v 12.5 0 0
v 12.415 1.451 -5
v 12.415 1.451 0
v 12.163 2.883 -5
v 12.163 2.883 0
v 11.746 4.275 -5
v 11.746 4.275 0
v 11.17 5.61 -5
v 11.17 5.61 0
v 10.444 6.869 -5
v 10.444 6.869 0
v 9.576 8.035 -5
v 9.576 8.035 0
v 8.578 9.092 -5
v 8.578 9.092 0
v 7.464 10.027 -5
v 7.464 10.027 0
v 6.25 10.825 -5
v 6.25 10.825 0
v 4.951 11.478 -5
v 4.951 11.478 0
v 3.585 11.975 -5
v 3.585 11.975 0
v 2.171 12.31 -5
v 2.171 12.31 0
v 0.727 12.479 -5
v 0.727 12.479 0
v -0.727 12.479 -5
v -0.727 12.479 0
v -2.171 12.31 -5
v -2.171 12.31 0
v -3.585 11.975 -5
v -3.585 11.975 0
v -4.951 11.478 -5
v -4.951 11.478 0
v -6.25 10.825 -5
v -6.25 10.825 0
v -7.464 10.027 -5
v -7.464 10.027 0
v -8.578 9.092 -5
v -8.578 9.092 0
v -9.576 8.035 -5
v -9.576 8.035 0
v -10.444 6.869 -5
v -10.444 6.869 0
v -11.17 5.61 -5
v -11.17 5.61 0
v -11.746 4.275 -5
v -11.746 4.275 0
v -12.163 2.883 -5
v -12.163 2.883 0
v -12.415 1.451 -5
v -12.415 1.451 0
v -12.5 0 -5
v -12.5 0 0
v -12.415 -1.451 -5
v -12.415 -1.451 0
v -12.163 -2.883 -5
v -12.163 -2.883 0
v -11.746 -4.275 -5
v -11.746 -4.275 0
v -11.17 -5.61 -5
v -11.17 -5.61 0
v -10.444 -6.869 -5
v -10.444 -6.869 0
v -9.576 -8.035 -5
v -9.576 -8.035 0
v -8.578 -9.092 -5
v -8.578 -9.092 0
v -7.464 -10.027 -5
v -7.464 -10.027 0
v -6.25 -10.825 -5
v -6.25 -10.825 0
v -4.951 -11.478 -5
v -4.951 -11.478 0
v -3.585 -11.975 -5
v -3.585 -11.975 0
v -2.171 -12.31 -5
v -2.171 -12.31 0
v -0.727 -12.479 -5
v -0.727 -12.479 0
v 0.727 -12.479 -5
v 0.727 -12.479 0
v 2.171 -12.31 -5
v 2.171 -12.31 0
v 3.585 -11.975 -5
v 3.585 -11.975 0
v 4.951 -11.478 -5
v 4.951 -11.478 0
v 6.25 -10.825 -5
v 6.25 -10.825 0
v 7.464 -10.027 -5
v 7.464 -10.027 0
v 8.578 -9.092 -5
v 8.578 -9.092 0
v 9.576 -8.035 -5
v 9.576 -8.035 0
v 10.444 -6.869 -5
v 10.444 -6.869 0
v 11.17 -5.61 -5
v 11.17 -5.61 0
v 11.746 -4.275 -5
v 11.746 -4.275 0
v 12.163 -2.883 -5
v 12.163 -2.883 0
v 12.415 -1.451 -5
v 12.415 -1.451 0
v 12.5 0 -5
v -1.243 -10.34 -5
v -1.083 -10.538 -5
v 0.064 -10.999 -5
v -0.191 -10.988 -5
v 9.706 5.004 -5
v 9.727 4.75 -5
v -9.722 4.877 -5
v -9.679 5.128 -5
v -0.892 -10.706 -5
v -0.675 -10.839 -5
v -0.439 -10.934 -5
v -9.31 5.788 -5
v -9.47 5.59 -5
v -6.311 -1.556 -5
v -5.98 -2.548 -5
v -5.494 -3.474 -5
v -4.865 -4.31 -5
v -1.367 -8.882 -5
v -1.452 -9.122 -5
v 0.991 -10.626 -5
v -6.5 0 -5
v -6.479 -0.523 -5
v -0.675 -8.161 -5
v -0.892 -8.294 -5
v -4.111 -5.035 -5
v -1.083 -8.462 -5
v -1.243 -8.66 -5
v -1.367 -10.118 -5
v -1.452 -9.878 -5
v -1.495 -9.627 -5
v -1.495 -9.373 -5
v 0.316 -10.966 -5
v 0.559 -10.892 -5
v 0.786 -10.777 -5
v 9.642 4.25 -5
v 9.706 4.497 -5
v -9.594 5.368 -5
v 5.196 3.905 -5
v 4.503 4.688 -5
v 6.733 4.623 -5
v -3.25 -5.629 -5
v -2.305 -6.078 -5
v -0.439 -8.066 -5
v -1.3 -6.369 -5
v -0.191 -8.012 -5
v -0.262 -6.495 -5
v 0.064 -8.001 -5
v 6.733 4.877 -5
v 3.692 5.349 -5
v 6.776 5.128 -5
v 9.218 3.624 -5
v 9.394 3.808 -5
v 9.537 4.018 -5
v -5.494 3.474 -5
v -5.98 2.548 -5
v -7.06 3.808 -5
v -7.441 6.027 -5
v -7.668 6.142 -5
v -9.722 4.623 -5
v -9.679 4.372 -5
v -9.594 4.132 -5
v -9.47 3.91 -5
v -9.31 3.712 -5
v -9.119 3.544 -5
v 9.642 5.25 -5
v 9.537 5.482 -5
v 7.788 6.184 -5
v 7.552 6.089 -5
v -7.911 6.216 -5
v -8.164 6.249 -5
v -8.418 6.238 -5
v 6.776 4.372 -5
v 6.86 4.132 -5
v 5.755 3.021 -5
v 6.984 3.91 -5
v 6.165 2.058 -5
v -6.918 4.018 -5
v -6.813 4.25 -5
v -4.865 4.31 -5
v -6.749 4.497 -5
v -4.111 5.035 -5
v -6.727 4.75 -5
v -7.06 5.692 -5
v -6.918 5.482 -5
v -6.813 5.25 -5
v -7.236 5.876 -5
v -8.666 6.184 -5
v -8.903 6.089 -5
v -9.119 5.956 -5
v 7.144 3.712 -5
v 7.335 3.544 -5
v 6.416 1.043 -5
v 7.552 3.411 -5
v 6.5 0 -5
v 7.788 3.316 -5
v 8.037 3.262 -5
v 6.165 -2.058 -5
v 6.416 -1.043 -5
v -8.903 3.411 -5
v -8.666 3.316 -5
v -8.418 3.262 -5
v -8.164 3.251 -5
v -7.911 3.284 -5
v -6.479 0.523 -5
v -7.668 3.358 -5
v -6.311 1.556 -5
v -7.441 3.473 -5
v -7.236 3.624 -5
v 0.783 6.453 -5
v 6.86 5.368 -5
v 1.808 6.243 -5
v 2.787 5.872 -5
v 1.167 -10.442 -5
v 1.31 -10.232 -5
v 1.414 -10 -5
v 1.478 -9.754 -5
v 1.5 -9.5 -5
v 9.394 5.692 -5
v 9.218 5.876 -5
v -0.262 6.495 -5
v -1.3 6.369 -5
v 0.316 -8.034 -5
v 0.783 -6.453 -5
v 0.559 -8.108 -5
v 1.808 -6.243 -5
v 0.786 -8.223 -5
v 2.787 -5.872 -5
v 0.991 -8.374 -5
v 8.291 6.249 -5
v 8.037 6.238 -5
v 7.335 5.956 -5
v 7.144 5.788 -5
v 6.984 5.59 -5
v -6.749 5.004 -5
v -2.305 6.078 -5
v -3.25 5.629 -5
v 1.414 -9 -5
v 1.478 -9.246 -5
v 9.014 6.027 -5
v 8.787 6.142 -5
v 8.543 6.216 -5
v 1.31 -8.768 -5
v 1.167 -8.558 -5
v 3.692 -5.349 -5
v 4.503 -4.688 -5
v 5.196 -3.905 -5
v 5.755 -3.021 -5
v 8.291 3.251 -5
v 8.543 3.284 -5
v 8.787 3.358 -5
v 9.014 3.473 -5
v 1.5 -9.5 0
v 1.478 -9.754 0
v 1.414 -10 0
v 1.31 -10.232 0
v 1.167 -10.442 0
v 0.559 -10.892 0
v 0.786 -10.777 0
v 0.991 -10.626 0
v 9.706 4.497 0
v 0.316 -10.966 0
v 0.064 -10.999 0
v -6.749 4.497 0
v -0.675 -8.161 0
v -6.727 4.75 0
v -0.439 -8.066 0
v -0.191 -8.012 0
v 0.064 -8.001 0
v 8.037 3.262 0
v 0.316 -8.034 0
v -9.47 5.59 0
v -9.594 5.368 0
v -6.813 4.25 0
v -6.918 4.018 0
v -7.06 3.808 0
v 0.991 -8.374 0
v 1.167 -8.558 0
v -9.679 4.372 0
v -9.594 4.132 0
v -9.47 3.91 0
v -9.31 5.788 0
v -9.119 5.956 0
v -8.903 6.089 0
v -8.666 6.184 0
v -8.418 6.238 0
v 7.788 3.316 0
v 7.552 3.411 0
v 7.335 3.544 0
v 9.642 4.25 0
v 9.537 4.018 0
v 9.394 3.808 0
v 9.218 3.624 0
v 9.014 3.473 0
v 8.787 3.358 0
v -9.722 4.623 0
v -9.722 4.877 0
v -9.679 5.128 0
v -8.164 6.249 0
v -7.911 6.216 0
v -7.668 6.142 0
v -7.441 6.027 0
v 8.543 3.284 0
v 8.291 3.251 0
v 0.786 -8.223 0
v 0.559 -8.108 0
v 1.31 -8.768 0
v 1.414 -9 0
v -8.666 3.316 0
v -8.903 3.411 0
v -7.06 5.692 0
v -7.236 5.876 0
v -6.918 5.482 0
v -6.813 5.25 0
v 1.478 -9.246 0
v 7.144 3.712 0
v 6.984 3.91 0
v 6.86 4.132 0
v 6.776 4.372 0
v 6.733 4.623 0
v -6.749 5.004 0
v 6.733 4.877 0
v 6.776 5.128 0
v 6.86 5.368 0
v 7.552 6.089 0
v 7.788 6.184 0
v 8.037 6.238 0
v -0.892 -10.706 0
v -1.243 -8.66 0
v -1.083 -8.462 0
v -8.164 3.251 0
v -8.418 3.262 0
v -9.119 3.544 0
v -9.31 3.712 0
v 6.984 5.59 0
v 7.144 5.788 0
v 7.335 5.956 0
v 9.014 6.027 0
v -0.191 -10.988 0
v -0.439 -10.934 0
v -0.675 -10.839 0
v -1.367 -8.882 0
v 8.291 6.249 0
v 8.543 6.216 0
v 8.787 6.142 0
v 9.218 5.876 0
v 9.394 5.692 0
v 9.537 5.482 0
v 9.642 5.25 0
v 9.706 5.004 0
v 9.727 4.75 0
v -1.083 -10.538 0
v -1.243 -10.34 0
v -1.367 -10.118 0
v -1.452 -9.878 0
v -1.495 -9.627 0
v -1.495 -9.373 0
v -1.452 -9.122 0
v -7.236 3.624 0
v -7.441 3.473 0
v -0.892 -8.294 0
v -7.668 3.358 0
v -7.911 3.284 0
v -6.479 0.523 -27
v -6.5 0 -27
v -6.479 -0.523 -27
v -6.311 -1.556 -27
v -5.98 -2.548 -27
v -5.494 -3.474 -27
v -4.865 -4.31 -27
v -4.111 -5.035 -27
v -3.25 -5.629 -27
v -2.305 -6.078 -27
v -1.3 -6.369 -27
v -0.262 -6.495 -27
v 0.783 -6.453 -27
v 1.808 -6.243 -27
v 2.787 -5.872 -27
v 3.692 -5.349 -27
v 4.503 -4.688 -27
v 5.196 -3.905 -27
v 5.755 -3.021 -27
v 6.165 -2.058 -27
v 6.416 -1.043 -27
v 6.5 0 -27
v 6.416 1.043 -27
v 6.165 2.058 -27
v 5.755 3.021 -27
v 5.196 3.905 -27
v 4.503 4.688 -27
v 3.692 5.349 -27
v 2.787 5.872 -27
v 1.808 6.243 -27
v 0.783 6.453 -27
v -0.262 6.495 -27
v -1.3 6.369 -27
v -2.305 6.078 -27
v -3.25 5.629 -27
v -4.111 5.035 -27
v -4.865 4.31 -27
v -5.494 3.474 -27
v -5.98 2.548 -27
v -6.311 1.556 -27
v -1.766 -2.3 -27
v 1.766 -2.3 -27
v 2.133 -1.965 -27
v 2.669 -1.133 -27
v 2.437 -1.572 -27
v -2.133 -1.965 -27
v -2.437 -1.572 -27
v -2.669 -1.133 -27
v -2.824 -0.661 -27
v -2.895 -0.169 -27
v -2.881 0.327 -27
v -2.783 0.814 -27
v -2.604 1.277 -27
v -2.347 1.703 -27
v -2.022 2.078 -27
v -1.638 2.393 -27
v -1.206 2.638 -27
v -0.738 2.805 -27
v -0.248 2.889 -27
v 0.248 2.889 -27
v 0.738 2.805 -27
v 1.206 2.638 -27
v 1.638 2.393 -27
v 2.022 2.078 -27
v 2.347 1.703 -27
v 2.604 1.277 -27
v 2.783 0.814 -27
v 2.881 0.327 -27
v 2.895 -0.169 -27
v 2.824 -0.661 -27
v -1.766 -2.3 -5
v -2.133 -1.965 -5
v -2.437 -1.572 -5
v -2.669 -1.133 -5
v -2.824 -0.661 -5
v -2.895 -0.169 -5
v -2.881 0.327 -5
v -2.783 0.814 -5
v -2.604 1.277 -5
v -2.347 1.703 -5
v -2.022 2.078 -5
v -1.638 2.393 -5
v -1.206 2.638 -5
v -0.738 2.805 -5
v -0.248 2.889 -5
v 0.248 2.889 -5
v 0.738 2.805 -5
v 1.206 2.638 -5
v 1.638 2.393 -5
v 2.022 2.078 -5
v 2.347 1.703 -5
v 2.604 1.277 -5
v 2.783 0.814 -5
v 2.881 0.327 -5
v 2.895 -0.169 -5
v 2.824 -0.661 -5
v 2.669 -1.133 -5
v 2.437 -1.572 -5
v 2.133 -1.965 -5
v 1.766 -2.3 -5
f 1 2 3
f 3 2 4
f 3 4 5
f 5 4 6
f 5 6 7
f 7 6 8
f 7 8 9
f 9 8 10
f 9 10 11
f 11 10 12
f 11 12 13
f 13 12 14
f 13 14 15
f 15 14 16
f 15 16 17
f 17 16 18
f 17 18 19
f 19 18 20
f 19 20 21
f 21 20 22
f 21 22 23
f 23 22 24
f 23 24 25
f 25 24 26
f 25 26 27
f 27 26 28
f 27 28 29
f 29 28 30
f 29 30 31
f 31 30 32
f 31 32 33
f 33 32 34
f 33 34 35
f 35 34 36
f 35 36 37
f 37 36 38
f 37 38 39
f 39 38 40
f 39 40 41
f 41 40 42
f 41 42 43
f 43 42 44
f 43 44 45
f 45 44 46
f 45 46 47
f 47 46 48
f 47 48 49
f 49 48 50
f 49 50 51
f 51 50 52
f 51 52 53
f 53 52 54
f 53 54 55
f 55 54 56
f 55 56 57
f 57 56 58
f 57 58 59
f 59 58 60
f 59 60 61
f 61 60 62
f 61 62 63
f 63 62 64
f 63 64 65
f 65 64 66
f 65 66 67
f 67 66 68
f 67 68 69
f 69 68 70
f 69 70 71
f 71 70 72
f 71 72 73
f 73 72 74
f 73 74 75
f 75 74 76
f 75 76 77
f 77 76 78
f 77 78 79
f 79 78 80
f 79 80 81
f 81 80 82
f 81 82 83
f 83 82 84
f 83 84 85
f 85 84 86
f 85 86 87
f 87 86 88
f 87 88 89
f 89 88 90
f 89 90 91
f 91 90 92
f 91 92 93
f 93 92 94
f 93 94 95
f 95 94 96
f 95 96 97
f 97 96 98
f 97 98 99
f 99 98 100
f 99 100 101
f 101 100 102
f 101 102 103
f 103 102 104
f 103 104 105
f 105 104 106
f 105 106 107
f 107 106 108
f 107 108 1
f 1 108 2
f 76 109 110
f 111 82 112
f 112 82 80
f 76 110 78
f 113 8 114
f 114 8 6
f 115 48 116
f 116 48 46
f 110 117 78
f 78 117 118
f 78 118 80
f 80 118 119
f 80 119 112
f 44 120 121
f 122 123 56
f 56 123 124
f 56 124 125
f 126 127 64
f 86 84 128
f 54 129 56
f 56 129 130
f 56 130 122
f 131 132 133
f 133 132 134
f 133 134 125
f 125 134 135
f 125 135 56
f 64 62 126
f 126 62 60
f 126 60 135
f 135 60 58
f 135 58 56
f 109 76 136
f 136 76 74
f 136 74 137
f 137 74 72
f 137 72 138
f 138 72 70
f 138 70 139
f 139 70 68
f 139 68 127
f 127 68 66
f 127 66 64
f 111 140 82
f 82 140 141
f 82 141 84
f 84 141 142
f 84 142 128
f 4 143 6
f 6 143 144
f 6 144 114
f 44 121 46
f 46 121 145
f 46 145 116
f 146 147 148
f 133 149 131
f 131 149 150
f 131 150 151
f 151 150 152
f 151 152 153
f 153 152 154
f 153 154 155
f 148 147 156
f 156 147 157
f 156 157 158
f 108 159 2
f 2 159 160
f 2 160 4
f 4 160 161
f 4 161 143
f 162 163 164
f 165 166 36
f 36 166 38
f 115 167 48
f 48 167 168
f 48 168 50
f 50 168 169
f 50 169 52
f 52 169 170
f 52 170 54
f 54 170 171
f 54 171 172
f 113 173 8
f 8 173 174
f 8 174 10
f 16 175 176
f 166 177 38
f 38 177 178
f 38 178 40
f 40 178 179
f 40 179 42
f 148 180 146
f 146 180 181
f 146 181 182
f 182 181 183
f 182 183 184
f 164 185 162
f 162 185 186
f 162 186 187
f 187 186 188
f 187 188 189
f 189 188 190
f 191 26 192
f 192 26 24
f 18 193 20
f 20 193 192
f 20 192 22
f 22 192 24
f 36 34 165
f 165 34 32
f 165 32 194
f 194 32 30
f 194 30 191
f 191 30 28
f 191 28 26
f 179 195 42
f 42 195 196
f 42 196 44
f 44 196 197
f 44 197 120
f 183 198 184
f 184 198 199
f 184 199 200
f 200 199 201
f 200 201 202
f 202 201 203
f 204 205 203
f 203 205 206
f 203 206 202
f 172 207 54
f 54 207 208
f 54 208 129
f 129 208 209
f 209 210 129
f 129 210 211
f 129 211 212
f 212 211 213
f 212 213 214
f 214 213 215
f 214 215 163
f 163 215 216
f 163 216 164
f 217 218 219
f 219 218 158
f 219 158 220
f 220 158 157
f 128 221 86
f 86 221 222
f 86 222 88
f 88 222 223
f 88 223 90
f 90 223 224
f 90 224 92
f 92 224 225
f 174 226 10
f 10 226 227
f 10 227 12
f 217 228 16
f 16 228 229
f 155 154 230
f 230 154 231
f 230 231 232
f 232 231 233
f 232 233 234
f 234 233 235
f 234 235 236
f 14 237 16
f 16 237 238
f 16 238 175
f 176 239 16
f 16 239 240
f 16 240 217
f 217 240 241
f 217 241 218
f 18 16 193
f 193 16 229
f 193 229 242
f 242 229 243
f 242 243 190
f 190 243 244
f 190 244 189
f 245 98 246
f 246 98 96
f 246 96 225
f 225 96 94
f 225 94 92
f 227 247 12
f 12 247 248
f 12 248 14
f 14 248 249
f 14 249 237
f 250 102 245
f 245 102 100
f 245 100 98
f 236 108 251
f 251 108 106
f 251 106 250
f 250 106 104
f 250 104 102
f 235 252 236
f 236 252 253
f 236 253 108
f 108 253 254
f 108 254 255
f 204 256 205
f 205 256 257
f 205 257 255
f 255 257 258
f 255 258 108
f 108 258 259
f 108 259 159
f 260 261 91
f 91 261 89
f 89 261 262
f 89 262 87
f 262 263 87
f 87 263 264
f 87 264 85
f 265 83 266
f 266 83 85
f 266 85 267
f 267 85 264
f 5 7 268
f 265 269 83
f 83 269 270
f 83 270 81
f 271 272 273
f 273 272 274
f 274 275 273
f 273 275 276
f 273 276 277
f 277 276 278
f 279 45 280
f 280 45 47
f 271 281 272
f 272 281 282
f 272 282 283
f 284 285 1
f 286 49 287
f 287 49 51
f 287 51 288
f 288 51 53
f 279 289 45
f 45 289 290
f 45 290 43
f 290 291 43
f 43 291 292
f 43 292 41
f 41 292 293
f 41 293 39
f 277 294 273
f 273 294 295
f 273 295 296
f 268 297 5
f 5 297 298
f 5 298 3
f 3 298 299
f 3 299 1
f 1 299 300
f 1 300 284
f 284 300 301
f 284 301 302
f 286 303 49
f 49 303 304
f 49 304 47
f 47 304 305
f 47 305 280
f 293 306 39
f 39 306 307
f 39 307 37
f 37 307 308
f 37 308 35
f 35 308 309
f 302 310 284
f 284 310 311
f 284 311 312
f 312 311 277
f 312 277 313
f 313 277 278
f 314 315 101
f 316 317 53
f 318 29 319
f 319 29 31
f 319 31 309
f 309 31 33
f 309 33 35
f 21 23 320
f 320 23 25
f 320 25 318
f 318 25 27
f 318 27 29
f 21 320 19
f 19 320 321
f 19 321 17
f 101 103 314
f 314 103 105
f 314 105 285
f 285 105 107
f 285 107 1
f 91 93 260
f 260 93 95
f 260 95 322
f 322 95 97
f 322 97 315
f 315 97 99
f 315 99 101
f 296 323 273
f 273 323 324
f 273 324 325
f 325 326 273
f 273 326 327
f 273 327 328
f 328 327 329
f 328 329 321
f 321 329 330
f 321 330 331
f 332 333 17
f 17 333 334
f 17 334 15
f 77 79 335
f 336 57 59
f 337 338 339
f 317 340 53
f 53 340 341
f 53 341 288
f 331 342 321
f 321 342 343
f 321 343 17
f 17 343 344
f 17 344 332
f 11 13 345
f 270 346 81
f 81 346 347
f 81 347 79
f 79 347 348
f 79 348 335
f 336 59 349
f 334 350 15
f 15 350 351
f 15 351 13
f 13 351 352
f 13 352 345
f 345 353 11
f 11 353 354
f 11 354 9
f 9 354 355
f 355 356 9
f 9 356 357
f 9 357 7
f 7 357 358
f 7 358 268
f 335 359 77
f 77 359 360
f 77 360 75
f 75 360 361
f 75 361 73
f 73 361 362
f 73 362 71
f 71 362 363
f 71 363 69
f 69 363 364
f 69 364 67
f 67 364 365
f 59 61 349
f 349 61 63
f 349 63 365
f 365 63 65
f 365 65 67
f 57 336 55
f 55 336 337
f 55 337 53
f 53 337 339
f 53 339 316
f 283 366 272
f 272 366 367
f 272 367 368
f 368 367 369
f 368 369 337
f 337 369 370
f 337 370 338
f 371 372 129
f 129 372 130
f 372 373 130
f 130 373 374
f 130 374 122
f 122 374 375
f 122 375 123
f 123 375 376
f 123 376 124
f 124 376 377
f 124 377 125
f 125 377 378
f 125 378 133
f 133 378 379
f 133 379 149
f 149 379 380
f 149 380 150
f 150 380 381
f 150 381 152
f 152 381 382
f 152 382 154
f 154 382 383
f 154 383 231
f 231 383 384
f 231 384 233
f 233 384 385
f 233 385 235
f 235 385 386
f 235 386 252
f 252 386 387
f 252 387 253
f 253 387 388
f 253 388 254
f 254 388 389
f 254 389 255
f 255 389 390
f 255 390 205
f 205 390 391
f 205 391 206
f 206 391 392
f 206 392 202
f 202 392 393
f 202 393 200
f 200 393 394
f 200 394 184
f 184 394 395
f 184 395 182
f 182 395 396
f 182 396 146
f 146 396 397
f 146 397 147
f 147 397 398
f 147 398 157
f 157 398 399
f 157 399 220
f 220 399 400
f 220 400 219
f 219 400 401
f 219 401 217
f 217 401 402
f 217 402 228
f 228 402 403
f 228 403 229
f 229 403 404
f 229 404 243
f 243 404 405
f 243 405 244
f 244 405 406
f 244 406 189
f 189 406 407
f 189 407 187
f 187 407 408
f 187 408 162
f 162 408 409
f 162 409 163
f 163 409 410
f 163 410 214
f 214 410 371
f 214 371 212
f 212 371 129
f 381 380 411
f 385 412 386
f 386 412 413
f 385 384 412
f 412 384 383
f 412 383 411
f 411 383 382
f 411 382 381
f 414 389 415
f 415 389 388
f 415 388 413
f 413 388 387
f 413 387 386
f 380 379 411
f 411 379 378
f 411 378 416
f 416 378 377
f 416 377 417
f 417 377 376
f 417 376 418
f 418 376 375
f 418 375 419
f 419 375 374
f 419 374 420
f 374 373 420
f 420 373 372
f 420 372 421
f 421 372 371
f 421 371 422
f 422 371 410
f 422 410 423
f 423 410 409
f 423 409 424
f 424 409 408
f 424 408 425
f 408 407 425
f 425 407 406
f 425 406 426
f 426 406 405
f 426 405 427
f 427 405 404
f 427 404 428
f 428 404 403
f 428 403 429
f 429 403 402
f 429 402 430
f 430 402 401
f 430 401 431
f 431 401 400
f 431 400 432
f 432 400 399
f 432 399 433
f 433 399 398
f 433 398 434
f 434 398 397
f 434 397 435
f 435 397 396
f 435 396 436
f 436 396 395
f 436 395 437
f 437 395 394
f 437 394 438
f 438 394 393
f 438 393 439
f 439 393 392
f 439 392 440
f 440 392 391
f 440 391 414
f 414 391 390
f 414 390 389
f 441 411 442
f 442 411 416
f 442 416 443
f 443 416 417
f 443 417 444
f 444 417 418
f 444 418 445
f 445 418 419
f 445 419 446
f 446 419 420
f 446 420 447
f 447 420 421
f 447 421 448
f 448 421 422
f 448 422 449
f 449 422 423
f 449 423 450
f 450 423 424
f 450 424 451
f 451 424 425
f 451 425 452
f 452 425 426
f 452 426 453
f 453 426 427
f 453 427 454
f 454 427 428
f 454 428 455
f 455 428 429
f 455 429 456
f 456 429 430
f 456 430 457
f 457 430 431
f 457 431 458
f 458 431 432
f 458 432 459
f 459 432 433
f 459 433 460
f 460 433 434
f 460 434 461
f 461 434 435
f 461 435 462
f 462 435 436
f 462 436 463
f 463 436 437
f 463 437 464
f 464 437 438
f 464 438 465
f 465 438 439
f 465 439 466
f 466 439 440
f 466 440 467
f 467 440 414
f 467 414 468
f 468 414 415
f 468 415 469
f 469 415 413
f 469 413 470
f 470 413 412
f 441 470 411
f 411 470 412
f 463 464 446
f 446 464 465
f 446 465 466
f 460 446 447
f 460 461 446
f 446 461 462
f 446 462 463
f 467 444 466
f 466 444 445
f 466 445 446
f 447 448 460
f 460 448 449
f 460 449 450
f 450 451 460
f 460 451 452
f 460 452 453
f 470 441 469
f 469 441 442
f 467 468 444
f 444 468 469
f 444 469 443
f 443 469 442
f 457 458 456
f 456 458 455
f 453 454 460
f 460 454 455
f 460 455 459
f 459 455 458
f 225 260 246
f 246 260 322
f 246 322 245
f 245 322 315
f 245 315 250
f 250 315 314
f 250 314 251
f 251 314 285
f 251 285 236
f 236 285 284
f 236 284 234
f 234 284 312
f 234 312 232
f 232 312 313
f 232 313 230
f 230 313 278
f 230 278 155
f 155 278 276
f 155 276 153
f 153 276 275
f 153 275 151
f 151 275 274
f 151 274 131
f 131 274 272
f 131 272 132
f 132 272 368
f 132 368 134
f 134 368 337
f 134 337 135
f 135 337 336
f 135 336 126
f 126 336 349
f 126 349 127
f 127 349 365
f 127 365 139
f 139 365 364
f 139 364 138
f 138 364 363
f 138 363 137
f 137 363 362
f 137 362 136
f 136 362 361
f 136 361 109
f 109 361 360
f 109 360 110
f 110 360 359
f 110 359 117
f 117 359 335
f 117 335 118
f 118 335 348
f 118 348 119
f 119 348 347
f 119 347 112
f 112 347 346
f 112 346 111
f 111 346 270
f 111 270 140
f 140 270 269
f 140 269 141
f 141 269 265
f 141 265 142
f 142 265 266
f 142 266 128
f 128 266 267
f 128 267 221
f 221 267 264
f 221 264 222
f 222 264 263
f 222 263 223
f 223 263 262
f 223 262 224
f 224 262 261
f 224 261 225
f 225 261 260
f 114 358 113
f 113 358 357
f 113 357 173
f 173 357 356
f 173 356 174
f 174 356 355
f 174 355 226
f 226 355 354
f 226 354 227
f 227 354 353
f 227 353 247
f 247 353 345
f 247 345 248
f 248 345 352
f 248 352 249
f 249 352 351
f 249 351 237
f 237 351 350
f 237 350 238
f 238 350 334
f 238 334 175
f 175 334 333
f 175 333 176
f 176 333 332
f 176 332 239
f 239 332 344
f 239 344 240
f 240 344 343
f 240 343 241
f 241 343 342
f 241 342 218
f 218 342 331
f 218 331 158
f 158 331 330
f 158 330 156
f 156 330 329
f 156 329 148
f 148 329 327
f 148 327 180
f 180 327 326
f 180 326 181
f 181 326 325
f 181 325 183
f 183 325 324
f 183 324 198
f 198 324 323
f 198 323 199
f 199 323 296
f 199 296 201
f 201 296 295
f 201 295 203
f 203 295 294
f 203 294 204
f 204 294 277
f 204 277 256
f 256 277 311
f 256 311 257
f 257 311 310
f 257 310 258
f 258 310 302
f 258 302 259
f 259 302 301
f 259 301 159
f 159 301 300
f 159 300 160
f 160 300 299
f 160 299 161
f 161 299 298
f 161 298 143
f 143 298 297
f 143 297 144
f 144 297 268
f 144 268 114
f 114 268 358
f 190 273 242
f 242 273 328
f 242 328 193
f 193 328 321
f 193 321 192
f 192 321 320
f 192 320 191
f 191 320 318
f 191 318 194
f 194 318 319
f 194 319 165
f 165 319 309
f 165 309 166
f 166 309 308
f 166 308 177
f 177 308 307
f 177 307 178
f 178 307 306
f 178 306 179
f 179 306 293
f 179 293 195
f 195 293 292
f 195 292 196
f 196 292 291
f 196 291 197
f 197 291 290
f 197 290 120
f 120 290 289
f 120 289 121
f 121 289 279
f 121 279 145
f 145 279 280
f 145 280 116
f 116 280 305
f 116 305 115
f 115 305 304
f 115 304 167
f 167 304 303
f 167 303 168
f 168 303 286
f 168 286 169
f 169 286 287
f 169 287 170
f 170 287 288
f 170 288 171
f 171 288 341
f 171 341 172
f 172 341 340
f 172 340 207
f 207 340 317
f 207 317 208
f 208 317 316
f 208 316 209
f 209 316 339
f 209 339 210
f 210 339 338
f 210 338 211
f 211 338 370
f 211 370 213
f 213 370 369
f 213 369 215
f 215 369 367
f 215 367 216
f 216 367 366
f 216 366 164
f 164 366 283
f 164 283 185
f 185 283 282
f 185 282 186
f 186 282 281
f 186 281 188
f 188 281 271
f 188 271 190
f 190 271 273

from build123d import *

# Parameters (mm, degrees)
SKETCH1_R           = 12.5
BOSS_EXTRUDE1_DEPTH = 5
SKETCH2_R           = 6.5
BOSS_EXTRUDE2_DEPTH = 22
CUT_EXTRUDE1_DEPTH  = 22
CUT_EXTRUDE2_REACH  = 34.272
SKETCH4_R           = 1.5


with BuildPart() as part:
    # Sketch1 → Boss-Extrude1 (new body)
    with BuildSketch(Plane.XY):
        Circle(SKETCH1_R)
    extrude(amount=-BOSS_EXTRUDE1_DEPTH)

    # Sketch2 → Boss-Extrude2 (add)
    with BuildSketch(Plane(origin=(0, 0, -5), x_dir=(-1, 0, 0), z_dir=(0, 0, -1))):
        Circle(SKETCH2_R)
    extrude(amount=BOSS_EXTRUDE2_DEPTH)

    # Sketch3 → Cut-Extrude1 (cut)
    with BuildSketch(Plane(origin=(0, 0, -27), x_dir=(-1, 0, 0), z_dir=(0, 0, -1))):
        with BuildLine():
            Line((-1.766352173, -2.3), (1.766352173, -2.3))
            ThreePointArc((1.766352173, -2.3), (0, 2.9), (-1.766352173, -2.3))
        make_face()
    extrude(amount=-CUT_EXTRUDE1_DEPTH, mode=Mode.SUBTRACT)

    # Sketch4 → Cut-Extrude2 (cut, up to next)
    with BuildSketch(Plane.XY, mode=Mode.PRIVATE) as cut_extrude2_sk1:
        with Locations((-8.227241336, 4.75)):
            Circle(SKETCH4_R)
    cut_extrude2_tool1 = extrude(cut_extrude2_sk1.sketch, amount=-CUT_EXTRUDE2_REACH, mode=Mode.PRIVATE) & part.part
    # Sketch4 → Cut-Extrude2 (cut, up to next)
    with BuildSketch(Plane.XY, mode=Mode.PRIVATE) as cut_extrude2_sk2:
        with Locations((8.227241336, 4.75)):
            Circle(SKETCH4_R)
    cut_extrude2_tool2 = extrude(cut_extrude2_sk2.sketch, amount=-CUT_EXTRUDE2_REACH, mode=Mode.PRIVATE) & part.part
    # Sketch4 → Cut-Extrude2 (cut, up to next)
    with BuildSketch(Plane.XY, mode=Mode.PRIVATE) as cut_extrude2_sk3:
        with Locations((0, -9.5)):
            Circle(SKETCH4_R)
    cut_extrude2_tool3 = extrude(cut_extrude2_sk3.sketch, amount=-CUT_EXTRUDE2_REACH, mode=Mode.PRIVATE) & part.part
    add(cut_extrude2_tool1.solids().sort_by_distance((-8.227241, 4.75, 0))[0], mode=Mode.SUBTRACT)
    add(cut_extrude2_tool2.solids().sort_by_distance((8.227241, 4.75, 0))[0], mode=Mode.SUBTRACT)
    add(cut_extrude2_tool3.solids().sort_by_distance((0, -9.5, 0))[0], mode=Mode.SUBTRACT)


solid = part.part
